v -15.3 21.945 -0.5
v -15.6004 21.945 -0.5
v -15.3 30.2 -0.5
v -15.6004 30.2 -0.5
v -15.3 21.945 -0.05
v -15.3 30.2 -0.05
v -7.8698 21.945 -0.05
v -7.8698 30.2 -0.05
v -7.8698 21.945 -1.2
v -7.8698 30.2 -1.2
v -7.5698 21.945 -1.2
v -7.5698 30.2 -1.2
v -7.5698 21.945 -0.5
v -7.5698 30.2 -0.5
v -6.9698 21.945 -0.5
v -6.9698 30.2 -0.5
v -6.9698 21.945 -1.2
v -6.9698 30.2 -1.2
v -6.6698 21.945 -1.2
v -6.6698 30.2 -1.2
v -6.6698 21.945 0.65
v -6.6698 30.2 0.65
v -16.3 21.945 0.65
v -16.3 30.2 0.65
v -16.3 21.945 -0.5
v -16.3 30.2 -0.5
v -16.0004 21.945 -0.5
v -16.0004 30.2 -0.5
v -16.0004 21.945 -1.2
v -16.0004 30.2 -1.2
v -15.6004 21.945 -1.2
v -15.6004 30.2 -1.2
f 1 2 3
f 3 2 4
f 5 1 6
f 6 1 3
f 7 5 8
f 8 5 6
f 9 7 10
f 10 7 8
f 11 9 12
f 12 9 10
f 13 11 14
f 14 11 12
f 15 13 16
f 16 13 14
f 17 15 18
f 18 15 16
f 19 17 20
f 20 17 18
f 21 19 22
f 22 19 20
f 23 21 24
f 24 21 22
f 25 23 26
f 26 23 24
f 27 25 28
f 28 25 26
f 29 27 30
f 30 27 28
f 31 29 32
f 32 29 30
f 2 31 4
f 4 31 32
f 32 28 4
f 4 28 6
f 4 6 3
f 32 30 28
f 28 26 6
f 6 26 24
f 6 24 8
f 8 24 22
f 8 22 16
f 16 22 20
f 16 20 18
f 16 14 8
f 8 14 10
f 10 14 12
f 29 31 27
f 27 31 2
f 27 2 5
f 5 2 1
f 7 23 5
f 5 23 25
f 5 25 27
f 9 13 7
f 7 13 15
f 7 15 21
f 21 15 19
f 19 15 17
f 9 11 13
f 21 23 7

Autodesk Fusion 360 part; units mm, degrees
sketch "Sketch1" plane through (0, 22, 0) normal (0, 1, 0) x (-1, 0, 0)
  line L0 (11.5698, 0.25) -> (15.3, 0.25)
  line L1 (15.3, 0.25) -> (15.3, -0.5)
  line L2 (15.3, -0.5) -> (15.6004, -0.5)
  line L3 (15.6004, -0.5) -> (15.6004, -1.2)
  line L4 (15.6004, -1.2) -> (16.0004, -1.2)
  line L5 (16.0004, -1.2) -> (16.0004, -0.5)
  line L6 (16.0004, -0.5) -> (16.3, -0.5)
  line L7 (16.3, -0.5) -> (16.3, 1.05)
  line L8 (16.3, 1.05) -> (5, 1.05)
  line L9 (11.5698, -1.2) -> (11.5698, 0.25)
  line L10 (11.5698, -0.6208) -> (11.2698, -0.6208) construction
  line L11 (11.2698, -0.5) -> (11.2698, -1.2)
  line L12 (11.2698, -0.5) -> (10.5698, -0.5)
  line L13 (10.5698, -0.5) -> (10.5698, -1.2)
  line L14 (10.5698, -0.678) -> (10.2698, -0.678) construction
  line L15 (10.2698, 1.05) -> (10.2698, -1.2)
  line L16 (10.2698, 1.05) -> (16.3, 1.05)
  line L17 (16.3, -0.5) -> (16.0004, -0.5)
  line L18 (16.0004, -1.2) -> (15.6004, -1.2)
  line L19 (15.6004, -0.5) -> (15.3, -0.5)
  line L20 (15.3, 0.25) -> (11.5698, 0.25)
  line L21 (11.5698, -1.2) -> (11.2698, -1.2)
  line L22 (11.5698, -1.2) -> (11.2698, -1.2)
  line L23 (11.2698, -0.5) -> (10.5698, -0.5)
  line L24 (10.5698, -1.2) -> (10.2698, -1.2)
  line L25 (10.2698, 1.05) -> (16.3, 1.05)
  line L26 (16.3, -0.5) -> (16.0004, -0.5)
  line L27 (16.0004, -1.2) -> (15.6004, -1.2)
  line L28 (15.6004, -0.5) -> (15.3, -0.5)
  line L29 (15.3, 0.25) -> (11.5698, 0.25)
  dimension "d14" = 0.3
  dimension "d15" = 0.7
  dimension "d16" = 0.3
extrude "Extrude1" add sketch "Sketch1" along normal blind 8.2 makes body 1
copy_body "Body->Comp1" bodies 1 removing the originals makes body 2 in component "Component"
move_face "OffsetFaces1" offset 0.3 1 faces at (-12.8132, 24.7333, 0.25) on bodies 2 in component "Component"
move_face "OffsetFaces2" offset -0.4 1 faces at (-12.2798, 27.4667, 1.05) on bodies 2 in component "Component"
move_face "OffsetFaces3" offset 3.3 1 faces at (-10.2698, 24.7333, 0.0333) on bodies 2 in component "Component"
move_face "OffsetFaces4" offset -3.3 1 faces at (-10.5698, 24.7333, -0.7333) on bodies 2 in component "Component"
move_face "OffsetFaces5" offset 3.3 1 faces at (-11.2698, 24.7333, -0.7333) on bodies 2 in component "Component"
move_face "OffsetFaces6" offset -3.3 1 faces at (-11.5698, 27.4667, -0.8167) on bodies 2 in component "Component"
move_face "OffsetFaces7" offset -4.2 1 faces at (-10.5132, 22, 0.4167) on bodies 2 in component "Component"
move_face "OffsetFaces8" offset -0.1 1 faces at (-8.2698, 28.8667, -0.4333) on bodies 2 in component "Component"
move_face "OffsetFaces9" offset 0.1 1 faces at (-7.9698, 27.5333, -0.7333) on bodies 2 in component "Component"
move_face "OffsetFaces10" offset 4.255 1 faces at (-10.4798, 26.2, 0.4167) on bodies 2 in component "Component"
move_face "OffsetFaces11" offset 0.3 1 faces at (-6.9698, 24.6967, 0.0333) on bodies 2 in component "Component"
move_face "OffsetFaces12" offset 0.3 1 faces at (-7.8698, 24.6967, -0.7333) on bodies 2 in component "Component"
move_face "OffsetFaces13" offset -0.3 1 faces at (-7.2698, 24.6967, -0.7333) on bodies 2 in component "Component"
move_face "OffsetFaces14" offset -0.3 1 faces at (-8.1698, 24.6967, -0.8167) on bodies 2 in component "Component"
component "Component" placed x (1, 0, 0) y (0, 1, 0) z (0, 0, 1) at (0, 0, 0)
